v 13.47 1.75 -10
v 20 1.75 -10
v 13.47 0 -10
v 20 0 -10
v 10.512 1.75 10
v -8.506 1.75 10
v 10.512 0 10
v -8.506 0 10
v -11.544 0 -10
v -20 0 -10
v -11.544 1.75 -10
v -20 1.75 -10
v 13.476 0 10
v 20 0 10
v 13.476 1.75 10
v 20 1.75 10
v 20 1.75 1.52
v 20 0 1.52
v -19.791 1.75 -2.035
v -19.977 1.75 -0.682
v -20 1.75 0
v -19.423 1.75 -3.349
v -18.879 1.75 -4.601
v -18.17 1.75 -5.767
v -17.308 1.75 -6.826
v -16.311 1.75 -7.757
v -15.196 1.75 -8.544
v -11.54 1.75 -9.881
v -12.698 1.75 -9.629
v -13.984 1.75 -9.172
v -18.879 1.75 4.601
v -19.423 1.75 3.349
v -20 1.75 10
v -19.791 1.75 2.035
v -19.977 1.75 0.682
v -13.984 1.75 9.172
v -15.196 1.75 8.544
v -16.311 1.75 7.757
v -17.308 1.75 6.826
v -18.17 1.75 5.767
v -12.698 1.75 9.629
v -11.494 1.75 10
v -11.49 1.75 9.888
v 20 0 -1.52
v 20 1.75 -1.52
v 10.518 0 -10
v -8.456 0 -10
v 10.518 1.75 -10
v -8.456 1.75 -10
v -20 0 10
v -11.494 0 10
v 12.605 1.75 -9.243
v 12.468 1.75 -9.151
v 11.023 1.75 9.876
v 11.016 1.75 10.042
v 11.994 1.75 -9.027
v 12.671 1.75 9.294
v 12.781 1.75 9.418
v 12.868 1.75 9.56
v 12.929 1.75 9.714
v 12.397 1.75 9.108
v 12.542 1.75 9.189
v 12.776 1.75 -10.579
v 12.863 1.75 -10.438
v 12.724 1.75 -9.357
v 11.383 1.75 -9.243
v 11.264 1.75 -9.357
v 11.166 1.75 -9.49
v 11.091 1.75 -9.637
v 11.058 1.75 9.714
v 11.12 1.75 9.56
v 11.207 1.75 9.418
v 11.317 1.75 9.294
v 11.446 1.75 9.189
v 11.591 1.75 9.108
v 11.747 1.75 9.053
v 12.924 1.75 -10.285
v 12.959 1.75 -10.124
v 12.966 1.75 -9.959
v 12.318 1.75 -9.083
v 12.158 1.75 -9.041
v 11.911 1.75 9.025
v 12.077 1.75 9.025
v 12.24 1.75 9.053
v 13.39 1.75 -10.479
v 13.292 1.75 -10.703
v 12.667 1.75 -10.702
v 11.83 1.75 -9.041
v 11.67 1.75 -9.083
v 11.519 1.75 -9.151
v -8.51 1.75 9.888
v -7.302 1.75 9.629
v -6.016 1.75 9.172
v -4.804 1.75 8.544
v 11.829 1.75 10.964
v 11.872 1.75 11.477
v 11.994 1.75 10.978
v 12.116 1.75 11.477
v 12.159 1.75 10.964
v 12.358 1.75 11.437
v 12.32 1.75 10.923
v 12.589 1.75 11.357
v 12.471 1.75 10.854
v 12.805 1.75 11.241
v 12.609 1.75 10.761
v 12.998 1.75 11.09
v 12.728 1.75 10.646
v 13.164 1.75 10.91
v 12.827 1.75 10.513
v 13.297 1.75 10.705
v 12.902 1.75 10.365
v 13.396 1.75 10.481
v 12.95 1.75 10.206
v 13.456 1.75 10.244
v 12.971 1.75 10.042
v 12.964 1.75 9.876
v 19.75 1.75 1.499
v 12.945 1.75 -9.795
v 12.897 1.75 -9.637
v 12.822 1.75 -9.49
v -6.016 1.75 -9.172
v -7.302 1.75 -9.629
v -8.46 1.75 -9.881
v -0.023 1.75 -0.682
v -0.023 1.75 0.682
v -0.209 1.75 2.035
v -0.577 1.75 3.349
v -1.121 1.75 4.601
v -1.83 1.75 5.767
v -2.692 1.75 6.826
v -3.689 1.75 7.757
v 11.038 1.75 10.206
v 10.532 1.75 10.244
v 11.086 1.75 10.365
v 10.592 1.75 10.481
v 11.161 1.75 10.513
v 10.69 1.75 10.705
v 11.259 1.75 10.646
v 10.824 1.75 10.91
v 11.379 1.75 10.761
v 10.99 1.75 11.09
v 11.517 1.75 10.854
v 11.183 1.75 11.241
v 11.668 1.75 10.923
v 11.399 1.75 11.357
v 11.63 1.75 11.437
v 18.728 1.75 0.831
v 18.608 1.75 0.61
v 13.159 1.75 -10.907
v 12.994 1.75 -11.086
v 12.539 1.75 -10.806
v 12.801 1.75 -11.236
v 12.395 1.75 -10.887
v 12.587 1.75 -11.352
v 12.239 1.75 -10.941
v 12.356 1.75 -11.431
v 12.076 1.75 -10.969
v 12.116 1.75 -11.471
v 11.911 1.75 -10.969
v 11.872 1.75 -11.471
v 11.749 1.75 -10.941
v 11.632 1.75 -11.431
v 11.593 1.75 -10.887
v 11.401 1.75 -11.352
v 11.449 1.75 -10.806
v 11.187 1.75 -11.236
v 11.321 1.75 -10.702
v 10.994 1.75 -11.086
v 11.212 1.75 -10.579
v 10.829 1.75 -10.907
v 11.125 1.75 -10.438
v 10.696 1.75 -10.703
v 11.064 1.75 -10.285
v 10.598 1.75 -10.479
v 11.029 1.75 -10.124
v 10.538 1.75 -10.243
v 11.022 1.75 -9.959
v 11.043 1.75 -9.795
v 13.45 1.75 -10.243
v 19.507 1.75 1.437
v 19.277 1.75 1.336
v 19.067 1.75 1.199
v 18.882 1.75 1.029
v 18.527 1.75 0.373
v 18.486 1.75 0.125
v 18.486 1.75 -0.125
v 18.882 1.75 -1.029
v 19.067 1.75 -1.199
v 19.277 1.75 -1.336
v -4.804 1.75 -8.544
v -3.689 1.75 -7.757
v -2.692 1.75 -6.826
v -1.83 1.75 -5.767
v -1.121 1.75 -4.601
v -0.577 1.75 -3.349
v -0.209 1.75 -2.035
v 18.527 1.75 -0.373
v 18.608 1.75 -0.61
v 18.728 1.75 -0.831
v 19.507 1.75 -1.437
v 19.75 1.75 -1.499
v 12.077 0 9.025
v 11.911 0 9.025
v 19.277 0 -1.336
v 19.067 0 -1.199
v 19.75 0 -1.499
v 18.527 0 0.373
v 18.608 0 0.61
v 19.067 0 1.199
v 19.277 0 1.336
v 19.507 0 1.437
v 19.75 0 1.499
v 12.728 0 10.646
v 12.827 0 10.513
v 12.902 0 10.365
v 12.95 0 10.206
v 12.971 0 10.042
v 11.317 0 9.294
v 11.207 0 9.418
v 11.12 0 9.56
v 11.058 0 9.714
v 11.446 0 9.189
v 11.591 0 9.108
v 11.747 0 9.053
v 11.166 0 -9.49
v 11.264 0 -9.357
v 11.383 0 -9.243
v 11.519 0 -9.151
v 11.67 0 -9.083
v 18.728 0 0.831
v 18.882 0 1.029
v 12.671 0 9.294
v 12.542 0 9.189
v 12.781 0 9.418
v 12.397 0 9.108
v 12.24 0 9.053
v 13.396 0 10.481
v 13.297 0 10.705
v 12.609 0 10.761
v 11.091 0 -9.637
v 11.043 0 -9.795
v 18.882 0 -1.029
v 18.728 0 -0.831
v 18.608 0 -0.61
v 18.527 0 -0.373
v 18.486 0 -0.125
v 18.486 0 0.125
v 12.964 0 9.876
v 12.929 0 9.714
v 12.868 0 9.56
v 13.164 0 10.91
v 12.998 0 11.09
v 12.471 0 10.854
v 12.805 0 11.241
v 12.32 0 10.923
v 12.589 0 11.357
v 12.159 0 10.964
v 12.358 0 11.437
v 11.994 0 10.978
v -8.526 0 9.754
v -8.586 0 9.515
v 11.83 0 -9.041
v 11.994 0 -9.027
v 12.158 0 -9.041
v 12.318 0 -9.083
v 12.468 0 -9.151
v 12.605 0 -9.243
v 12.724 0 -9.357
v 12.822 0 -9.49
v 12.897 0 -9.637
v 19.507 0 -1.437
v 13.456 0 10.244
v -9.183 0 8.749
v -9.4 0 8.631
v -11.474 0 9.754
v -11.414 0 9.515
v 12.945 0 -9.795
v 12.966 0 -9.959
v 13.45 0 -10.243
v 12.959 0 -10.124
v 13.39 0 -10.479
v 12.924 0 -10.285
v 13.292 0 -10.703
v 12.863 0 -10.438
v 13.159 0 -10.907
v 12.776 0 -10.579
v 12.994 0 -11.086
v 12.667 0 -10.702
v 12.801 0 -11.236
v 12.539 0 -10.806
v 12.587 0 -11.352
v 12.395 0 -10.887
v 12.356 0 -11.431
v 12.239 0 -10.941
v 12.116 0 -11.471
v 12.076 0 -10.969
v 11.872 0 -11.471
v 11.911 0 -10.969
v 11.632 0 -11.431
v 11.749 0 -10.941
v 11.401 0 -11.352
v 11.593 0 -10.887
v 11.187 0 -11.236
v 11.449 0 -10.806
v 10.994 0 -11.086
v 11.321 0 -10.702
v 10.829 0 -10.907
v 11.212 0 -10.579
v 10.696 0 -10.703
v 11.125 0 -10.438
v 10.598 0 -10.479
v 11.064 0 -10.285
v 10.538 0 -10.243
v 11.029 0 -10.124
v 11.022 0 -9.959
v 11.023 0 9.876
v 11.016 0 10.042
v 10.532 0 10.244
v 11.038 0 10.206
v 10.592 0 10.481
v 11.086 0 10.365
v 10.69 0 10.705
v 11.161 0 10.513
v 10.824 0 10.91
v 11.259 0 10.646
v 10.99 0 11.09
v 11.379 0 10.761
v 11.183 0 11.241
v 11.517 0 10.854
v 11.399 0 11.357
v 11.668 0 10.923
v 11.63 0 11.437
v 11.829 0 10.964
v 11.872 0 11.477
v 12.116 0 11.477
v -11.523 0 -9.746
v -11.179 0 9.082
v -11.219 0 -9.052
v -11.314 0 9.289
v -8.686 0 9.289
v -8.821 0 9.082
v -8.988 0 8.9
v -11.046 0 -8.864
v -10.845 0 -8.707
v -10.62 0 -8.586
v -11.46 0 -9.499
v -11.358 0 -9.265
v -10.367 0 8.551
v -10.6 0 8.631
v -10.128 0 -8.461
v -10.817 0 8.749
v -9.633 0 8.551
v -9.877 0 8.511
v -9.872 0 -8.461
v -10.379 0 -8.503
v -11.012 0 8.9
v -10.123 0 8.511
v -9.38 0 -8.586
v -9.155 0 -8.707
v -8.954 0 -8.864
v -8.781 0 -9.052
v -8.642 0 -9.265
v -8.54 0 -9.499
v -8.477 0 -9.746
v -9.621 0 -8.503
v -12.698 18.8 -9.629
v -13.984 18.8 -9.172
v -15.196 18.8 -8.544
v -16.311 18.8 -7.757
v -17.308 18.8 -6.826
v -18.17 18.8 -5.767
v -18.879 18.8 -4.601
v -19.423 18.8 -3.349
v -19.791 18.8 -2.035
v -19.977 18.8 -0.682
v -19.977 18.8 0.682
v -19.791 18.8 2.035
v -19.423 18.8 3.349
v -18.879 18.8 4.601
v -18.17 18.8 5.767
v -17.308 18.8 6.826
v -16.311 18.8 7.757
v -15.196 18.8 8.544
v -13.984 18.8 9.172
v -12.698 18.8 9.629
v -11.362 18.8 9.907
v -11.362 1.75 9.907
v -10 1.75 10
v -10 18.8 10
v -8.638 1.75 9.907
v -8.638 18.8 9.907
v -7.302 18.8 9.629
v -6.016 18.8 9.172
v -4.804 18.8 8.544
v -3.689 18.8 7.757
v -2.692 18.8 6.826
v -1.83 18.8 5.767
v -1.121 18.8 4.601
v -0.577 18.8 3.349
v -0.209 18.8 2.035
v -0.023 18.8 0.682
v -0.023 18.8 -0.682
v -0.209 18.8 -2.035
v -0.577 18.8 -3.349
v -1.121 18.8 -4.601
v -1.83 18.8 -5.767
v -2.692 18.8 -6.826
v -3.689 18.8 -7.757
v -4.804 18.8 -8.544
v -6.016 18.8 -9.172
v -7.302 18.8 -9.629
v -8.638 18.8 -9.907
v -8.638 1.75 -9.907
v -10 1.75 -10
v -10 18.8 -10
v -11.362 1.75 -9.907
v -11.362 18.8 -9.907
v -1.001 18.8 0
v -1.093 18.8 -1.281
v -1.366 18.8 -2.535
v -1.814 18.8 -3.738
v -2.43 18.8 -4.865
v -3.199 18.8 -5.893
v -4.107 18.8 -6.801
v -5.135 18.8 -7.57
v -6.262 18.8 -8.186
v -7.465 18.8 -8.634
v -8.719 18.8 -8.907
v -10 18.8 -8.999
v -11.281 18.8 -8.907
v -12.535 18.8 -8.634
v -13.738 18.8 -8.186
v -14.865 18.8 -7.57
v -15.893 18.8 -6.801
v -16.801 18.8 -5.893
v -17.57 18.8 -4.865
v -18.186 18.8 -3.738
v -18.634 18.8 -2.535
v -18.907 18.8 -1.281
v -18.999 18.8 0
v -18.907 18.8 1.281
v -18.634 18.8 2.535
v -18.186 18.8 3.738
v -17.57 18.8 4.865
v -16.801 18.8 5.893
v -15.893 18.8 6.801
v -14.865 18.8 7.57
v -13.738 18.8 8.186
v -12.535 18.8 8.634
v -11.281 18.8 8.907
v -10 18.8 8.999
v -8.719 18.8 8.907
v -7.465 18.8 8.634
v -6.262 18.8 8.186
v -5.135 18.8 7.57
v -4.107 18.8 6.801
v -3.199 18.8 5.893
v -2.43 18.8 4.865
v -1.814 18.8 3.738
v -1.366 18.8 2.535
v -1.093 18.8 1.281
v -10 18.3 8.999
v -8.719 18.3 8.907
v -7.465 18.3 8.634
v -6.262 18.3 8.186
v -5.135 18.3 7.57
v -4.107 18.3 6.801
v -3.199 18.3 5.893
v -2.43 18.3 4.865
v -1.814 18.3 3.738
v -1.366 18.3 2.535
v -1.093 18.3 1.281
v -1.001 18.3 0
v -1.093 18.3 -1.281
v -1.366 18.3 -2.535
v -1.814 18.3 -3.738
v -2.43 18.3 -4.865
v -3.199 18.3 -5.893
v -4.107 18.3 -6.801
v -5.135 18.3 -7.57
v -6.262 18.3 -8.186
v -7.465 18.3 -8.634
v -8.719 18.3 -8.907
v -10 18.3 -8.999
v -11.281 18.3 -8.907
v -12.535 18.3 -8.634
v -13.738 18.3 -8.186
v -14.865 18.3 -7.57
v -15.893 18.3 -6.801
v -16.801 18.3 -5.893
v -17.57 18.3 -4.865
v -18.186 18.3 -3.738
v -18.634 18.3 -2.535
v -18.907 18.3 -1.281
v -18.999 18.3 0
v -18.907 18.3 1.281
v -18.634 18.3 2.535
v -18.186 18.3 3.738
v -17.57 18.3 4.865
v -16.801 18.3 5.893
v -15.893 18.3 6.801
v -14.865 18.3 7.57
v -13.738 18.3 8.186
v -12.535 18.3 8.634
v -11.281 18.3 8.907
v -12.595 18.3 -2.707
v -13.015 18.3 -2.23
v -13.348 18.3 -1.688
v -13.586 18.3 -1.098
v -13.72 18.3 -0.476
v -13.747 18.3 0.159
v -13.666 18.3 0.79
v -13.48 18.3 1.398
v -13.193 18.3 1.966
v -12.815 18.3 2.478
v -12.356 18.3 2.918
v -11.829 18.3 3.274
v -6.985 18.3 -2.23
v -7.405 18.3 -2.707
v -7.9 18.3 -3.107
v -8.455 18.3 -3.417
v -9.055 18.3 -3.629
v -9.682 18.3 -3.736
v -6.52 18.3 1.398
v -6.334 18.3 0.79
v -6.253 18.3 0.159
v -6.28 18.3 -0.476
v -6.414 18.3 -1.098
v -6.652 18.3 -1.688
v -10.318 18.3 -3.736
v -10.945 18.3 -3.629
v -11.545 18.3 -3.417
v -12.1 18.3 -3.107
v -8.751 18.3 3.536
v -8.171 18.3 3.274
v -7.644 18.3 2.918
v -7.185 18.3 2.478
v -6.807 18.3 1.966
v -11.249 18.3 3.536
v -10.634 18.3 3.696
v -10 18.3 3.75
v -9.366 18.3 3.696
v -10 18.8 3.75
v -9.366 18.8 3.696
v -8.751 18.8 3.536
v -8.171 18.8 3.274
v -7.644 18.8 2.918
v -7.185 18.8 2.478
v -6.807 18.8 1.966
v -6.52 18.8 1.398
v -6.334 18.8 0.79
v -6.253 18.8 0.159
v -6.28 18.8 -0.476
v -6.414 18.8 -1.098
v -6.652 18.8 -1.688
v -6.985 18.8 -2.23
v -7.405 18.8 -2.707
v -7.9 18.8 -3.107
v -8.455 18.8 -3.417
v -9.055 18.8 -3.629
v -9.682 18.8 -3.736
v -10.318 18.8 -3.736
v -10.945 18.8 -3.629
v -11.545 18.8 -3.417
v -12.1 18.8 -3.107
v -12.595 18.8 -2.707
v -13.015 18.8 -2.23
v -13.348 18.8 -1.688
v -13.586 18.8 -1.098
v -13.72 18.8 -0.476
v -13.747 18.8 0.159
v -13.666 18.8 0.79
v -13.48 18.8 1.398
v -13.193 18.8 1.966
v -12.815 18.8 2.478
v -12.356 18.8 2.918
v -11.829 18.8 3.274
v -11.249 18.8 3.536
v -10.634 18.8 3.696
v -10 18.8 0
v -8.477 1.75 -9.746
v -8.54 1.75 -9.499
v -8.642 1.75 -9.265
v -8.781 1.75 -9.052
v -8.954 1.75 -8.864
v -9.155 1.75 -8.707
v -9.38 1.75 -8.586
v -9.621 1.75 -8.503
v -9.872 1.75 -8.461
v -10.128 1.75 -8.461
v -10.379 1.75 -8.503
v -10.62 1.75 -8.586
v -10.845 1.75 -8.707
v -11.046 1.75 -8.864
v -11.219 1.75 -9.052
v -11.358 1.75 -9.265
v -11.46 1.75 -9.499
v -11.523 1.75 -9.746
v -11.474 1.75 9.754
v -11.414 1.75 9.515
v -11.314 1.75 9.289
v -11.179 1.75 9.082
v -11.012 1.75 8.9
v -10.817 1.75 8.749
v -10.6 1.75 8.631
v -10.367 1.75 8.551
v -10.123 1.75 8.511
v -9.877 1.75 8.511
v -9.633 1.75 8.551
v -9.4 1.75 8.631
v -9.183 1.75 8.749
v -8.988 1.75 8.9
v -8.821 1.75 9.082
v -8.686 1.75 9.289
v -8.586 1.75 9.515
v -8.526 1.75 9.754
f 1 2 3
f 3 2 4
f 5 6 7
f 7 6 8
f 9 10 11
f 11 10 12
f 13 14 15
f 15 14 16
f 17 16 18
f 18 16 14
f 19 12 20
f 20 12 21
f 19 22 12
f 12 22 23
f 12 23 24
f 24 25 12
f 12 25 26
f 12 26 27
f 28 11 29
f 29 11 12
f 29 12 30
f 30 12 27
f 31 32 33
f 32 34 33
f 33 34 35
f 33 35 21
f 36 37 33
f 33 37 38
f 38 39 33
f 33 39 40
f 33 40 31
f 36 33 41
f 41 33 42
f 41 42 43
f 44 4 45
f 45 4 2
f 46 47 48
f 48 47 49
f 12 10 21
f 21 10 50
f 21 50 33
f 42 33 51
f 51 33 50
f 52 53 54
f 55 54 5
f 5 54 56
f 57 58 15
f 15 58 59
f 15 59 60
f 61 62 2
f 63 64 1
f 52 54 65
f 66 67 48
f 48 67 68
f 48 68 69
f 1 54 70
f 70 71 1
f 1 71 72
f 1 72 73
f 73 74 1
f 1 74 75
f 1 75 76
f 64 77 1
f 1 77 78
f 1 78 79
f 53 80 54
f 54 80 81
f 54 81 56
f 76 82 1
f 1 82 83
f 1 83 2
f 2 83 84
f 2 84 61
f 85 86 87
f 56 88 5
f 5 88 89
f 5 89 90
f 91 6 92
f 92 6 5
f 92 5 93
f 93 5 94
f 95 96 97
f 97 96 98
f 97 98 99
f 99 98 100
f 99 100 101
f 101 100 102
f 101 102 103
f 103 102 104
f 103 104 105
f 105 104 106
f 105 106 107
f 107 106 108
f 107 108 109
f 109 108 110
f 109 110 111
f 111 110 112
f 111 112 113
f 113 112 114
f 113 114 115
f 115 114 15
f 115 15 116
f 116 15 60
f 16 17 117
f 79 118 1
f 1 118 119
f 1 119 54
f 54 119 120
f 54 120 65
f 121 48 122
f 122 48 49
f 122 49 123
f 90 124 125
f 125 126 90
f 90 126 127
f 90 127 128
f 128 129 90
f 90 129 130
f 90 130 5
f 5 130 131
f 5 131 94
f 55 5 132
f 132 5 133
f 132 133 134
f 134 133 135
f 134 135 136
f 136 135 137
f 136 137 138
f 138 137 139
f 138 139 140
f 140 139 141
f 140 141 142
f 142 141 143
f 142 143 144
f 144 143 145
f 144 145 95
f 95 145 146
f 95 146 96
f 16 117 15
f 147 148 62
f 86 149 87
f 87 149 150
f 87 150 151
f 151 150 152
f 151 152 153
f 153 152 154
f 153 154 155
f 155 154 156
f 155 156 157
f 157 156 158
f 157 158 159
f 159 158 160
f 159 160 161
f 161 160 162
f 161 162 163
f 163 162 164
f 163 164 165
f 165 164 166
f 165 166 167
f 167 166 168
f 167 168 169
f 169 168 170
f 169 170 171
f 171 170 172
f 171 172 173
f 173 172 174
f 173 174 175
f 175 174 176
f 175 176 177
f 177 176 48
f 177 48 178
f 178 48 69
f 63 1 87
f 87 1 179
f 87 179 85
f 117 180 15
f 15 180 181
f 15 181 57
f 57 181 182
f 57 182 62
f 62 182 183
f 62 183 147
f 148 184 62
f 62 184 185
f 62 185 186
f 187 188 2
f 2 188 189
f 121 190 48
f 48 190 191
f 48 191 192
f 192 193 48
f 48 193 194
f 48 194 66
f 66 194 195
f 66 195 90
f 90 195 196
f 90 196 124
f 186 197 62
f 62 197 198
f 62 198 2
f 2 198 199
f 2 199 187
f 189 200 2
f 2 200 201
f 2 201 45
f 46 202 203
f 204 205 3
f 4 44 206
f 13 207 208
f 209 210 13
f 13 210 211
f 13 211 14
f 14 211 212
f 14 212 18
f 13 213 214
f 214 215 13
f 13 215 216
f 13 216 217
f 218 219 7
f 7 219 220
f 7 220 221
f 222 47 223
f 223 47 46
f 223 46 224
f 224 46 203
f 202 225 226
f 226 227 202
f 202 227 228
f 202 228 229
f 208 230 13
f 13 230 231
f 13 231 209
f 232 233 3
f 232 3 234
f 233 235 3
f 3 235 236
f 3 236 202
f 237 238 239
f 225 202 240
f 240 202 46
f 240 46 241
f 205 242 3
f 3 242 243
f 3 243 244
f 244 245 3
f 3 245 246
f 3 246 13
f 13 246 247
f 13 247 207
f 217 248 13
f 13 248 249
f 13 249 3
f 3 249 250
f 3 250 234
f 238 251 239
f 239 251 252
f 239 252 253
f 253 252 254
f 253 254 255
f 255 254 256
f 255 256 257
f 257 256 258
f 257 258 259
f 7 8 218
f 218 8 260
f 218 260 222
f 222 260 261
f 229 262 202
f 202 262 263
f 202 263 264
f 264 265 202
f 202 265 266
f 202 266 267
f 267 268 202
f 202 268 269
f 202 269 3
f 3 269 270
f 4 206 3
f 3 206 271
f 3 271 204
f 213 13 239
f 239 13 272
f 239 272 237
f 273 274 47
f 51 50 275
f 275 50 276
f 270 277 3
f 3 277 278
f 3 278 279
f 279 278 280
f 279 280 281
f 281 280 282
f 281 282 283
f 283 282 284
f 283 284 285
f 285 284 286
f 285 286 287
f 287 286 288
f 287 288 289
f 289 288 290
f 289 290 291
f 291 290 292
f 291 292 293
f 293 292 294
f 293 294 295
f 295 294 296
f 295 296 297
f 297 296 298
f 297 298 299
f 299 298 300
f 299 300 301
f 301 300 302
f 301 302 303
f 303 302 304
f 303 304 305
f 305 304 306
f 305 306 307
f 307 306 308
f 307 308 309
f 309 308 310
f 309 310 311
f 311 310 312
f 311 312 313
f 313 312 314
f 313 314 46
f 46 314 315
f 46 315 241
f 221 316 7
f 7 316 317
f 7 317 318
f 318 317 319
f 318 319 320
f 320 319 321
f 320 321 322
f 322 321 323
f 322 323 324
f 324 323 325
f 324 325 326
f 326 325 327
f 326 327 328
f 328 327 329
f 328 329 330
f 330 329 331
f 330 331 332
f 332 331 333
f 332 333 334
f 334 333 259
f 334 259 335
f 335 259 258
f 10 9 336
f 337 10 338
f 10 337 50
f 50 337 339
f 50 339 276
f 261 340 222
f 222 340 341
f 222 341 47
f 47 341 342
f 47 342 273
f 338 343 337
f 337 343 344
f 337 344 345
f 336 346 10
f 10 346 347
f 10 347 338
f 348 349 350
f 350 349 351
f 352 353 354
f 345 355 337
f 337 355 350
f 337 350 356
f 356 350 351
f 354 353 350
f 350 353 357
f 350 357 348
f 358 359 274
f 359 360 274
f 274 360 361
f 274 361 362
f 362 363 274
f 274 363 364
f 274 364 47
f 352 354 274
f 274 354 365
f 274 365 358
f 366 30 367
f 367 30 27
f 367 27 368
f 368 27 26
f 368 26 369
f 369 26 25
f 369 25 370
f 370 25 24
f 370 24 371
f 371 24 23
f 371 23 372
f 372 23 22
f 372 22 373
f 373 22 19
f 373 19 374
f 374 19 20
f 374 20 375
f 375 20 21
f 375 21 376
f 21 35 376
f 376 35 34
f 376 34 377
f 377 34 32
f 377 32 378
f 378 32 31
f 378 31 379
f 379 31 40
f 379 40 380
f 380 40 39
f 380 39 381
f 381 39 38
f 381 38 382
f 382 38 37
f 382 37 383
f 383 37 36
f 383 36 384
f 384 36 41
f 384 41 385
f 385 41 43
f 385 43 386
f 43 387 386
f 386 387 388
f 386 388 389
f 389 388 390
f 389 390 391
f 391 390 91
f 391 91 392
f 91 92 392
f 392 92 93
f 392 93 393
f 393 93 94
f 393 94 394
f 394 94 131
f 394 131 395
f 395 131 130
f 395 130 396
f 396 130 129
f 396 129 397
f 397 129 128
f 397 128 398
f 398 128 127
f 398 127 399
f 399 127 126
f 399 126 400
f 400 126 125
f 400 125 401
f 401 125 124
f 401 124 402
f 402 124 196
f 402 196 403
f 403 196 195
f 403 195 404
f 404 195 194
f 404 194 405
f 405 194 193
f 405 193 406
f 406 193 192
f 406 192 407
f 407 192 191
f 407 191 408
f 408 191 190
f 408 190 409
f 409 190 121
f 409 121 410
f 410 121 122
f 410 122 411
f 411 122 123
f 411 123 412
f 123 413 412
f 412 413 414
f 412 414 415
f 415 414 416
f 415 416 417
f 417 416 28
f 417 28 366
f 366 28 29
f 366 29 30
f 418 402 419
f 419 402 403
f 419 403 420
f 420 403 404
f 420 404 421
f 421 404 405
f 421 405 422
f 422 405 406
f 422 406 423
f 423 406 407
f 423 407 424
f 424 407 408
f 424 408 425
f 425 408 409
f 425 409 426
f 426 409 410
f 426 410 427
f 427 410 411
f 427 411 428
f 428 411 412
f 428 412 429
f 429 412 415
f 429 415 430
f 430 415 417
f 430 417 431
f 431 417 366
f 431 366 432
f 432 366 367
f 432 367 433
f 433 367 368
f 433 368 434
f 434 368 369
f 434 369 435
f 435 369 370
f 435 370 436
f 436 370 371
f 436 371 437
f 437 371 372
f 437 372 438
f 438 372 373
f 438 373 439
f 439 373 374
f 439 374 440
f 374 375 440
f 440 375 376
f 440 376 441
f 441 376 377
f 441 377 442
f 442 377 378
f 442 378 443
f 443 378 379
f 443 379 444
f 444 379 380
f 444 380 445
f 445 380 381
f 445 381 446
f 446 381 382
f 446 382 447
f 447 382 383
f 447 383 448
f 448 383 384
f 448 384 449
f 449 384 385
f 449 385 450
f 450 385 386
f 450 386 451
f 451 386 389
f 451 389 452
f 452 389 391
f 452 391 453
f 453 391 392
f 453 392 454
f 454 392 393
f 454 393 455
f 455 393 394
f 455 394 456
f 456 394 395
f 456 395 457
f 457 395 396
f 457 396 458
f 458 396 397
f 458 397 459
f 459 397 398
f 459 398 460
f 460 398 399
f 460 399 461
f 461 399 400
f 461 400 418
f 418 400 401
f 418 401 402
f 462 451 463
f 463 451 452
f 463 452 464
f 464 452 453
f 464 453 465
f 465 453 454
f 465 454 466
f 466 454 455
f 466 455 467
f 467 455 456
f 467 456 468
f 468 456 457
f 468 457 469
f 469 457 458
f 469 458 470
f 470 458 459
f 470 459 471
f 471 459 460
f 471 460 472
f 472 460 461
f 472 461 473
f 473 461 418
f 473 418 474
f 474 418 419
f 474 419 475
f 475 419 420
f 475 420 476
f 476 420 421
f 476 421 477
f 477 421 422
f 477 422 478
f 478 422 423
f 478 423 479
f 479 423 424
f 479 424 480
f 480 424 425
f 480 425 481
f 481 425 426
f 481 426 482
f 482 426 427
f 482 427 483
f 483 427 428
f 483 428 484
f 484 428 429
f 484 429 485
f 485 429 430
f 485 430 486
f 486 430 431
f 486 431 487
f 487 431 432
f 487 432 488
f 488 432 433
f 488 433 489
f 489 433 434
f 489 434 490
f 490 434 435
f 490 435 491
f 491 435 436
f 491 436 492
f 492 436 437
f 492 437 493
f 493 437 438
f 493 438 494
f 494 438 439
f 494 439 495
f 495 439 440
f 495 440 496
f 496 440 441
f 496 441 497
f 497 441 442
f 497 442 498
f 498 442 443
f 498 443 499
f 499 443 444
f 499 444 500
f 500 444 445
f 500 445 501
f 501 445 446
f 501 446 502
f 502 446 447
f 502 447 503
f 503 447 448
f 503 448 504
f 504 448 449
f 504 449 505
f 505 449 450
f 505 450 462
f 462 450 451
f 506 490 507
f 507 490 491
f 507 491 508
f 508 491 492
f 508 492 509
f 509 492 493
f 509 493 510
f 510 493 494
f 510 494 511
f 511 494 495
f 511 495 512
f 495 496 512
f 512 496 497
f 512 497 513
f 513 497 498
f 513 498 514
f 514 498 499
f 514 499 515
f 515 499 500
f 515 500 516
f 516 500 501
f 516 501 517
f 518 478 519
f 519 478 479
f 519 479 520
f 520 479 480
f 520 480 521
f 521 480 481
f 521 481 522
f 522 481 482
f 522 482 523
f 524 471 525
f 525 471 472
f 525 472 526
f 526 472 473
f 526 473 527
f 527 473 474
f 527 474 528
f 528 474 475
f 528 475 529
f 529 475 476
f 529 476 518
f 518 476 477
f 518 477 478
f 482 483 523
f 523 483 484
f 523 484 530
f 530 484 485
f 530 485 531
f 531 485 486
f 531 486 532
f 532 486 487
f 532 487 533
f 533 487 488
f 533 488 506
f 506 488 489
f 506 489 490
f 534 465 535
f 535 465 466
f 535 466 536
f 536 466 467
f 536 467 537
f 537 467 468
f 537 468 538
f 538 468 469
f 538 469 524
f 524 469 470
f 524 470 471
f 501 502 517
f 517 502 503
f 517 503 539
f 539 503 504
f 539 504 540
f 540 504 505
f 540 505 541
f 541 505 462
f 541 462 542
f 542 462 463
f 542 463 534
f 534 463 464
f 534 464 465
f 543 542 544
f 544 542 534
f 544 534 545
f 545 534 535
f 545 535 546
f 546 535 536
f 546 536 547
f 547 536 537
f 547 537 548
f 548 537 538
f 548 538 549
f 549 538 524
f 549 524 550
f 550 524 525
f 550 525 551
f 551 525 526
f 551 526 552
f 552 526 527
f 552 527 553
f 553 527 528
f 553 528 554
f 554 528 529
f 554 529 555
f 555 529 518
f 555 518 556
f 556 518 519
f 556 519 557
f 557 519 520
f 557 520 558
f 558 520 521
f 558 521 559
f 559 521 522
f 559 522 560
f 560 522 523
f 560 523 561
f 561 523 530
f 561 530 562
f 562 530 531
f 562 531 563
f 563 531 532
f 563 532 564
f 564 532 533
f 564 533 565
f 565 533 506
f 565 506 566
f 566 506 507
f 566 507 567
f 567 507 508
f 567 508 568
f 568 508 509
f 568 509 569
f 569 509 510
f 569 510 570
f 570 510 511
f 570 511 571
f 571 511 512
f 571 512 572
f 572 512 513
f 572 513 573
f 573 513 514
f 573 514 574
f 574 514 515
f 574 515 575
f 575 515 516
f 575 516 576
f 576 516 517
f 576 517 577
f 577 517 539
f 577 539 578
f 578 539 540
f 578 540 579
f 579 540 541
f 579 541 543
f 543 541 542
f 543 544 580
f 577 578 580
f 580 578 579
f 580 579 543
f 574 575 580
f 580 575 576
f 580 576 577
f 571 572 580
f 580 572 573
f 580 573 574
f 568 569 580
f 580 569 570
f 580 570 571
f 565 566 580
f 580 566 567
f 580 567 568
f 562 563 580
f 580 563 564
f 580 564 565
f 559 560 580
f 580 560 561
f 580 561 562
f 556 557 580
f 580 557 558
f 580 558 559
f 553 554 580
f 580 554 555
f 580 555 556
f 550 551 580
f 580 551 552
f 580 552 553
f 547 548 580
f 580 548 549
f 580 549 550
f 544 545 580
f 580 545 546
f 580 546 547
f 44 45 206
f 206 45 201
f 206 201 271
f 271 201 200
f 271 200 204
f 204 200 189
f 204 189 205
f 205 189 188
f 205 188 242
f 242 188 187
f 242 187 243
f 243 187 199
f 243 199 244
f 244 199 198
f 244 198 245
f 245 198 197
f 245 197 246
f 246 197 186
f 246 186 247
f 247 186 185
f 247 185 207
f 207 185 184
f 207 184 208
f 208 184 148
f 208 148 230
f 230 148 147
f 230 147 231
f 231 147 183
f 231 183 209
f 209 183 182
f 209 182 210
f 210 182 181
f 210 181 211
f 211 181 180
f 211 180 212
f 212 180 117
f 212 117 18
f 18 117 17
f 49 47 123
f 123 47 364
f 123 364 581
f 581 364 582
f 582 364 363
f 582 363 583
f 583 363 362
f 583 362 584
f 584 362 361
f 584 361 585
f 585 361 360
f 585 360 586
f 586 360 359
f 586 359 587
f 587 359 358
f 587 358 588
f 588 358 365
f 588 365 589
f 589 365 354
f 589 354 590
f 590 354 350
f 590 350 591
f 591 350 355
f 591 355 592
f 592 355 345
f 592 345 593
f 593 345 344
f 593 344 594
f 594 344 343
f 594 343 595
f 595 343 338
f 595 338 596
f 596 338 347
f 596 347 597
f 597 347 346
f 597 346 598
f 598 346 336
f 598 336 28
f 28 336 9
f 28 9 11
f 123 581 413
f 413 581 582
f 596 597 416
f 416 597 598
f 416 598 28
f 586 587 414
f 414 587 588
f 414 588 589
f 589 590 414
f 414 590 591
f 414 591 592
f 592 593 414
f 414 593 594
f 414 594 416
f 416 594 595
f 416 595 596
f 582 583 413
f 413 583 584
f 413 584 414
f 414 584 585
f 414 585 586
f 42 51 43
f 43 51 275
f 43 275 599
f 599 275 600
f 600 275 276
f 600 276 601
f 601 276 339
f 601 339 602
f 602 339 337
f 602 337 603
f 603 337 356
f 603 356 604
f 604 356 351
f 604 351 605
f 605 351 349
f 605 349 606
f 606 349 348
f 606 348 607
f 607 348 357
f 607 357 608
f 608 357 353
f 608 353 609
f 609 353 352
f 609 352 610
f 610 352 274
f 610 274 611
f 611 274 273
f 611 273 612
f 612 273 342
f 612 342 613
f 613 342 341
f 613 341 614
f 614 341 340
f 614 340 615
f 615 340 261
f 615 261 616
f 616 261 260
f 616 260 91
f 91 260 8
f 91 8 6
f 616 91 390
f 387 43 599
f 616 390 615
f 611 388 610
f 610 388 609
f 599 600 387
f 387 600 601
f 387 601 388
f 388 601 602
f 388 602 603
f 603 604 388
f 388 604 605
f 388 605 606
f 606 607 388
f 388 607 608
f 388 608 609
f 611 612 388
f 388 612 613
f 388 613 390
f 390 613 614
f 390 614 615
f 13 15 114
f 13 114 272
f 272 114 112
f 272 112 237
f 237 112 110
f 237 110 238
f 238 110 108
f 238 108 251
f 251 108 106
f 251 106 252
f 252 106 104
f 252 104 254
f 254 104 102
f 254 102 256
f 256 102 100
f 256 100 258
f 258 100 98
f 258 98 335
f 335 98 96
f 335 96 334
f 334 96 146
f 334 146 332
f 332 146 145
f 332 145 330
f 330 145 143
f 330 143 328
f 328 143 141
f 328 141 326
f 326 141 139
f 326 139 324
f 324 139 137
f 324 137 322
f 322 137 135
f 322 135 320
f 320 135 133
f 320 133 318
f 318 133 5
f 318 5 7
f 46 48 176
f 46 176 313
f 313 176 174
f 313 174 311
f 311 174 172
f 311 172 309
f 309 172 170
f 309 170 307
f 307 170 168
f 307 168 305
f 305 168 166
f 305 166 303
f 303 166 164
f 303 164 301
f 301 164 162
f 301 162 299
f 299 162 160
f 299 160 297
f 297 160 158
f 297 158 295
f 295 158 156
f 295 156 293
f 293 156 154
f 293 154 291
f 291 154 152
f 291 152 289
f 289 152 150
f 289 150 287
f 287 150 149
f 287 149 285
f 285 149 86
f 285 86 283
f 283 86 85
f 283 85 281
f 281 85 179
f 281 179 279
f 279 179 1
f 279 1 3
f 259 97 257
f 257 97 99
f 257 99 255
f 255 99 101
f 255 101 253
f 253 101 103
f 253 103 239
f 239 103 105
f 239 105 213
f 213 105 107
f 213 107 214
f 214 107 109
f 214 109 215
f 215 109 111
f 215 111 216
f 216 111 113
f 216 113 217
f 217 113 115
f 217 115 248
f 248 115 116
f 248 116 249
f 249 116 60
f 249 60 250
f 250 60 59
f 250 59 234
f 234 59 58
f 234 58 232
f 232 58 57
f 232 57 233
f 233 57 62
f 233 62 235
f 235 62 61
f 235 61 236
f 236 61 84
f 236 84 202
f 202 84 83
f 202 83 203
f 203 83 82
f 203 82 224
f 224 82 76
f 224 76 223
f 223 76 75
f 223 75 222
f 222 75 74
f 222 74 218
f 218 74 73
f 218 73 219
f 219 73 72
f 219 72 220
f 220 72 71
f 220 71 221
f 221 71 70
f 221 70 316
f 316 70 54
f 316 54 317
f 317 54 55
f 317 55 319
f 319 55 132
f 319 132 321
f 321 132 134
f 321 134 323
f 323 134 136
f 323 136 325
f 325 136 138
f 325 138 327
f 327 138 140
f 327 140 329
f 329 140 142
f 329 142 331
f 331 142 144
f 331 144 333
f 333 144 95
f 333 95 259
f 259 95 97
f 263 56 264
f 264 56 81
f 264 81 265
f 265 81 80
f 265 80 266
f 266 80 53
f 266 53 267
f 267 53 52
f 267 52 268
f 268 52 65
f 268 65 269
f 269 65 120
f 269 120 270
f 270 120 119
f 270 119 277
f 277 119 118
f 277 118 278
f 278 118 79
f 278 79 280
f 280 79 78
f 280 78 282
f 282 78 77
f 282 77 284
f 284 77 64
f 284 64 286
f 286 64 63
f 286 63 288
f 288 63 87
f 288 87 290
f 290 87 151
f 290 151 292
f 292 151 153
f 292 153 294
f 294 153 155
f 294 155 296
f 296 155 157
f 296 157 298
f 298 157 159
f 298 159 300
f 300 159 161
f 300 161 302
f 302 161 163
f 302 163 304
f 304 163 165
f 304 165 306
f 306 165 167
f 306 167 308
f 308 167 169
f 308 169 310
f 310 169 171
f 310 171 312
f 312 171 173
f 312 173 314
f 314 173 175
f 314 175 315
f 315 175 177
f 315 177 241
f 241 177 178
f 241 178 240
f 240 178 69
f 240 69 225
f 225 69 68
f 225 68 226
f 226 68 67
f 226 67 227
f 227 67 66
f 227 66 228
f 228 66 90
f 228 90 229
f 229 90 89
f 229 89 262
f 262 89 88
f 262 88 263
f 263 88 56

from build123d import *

# Parameters (mm, degrees)
SKETCH1_W           = 40
SKETCH1_H           = 20
BOSS_EXTRUDE1_DEPTH = 1.75
SKETCH2_R           = 10
BOSS_EXTRUDE2_DEPTH = 18.8
SKETCH3_R           = 8.998930974
SKETCH3_R_2         = 3.75
CUT_EXTRUDE2_DEPTH  = 0.5
SKETCH4_R           = 1.519525434
CUT_EXTRUDE3_DEPTH  = 29.119432782
SKETCH5_R           = 1.494488577
SKETCH5_R_2         = 1.544110057
CUT_EXTRUDE5_DEPTH  = 1.75
SKETCH7_R           = 1.482162374
SKETCH7_R_2         = 1.476093664
BOSS_EXTRUDE3_DEPTH = 1.75
SKETCH8_R           = 0.972887348
SKETCH8_R_2         = 0.978406894
CUT_EXTRUDE6_DEPTH  = 29.680002664


with BuildPart() as part:
    # Sketch1 → Boss-Extrude1 (new body)
    with BuildSketch(Plane(origin=(0, 0, 0), x_dir=(1, 0, 0), z_dir=(0, 1, 0))):
        Rectangle(SKETCH1_W, SKETCH1_H)
    extrude(amount=BOSS_EXTRUDE1_DEPTH)

    # Sketch2 → Boss-Extrude2 (add)
    with BuildSketch(Plane(origin=(0, 0, 0), x_dir=(1, 0, 0), z_dir=(0, 1, 0))):
        with Locations(Location((-10, 0, 0), (0, 0, 270))):
            Circle(SKETCH2_R)
    extrude(amount=BOSS_EXTRUDE2_DEPTH)

    # Sketch3 → Cut-Extrude2 (cut)
    with BuildSketch(Plane(origin=(0, 18.8, 0), x_dir=(1, 0, 0), z_dir=(0, 1, 0))):
        with Locations(Location((-10, 0, 0), (0, 0, 270))):
            Circle(SKETCH3_R)
        with Locations(Location((-10, 0, 0), (0, 0, 270))):
            Circle(SKETCH3_R_2, mode=Mode.SUBTRACT)
    extrude(amount=-CUT_EXTRUDE2_DEPTH, mode=Mode.SUBTRACT)

    # Sketch4 → Cut-Extrude3 (cut, through all)
    with BuildSketch(Plane(origin=(0, 1.75, 0), x_dir=(1, 0, 0), z_dir=(0, 1, 0))):
        with Locations((20, 0)):
            Circle(SKETCH4_R)
    extrude(amount=-CUT_EXTRUDE3_DEPTH, mode=Mode.SUBTRACT)

    # Sketch5 → Cut-Extrude5 (cut)
    with BuildSketch(Plane.XZ):
        with Locations((-10, 10)):
            Circle(SKETCH5_R)
        with Locations((-10, -10)):
            Circle(SKETCH5_R_2)
    extrude(amount=-CUT_EXTRUDE5_DEPTH, mode=Mode.SUBTRACT)

    # Sketch7 → Boss-Extrude3 (add)
    with BuildSketch(Plane(origin=(0, 1.75, 0), x_dir=(1, 0, 0), z_dir=(0, 1, 0))):
        with Locations((11.99395038, -10)):
            Circle(SKETCH7_R)
        with Locations((11.99395038, 10)):
            Circle(SKETCH7_R_2)
    extrude(amount=-BOSS_EXTRUDE3_DEPTH)

    # Sketch8 → Cut-Extrude6 (cut, through all)
    with BuildSketch(Plane(origin=(0, 1.75, 0), x_dir=(1, 0, 0), z_dir=(0, 1, 0))):
        with Locations(Location((11.99395038, 10, 0), (0, 0, 270))):
            Circle(SKETCH8_R)
        with Locations(Location((11.99395038, -10, 0), (0, 0, 270))):
            Circle(SKETCH8_R_2)
    extrude(amount=-CUT_EXTRUDE6_DEPTH, mode=Mode.SUBTRACT)


solid = part.part
